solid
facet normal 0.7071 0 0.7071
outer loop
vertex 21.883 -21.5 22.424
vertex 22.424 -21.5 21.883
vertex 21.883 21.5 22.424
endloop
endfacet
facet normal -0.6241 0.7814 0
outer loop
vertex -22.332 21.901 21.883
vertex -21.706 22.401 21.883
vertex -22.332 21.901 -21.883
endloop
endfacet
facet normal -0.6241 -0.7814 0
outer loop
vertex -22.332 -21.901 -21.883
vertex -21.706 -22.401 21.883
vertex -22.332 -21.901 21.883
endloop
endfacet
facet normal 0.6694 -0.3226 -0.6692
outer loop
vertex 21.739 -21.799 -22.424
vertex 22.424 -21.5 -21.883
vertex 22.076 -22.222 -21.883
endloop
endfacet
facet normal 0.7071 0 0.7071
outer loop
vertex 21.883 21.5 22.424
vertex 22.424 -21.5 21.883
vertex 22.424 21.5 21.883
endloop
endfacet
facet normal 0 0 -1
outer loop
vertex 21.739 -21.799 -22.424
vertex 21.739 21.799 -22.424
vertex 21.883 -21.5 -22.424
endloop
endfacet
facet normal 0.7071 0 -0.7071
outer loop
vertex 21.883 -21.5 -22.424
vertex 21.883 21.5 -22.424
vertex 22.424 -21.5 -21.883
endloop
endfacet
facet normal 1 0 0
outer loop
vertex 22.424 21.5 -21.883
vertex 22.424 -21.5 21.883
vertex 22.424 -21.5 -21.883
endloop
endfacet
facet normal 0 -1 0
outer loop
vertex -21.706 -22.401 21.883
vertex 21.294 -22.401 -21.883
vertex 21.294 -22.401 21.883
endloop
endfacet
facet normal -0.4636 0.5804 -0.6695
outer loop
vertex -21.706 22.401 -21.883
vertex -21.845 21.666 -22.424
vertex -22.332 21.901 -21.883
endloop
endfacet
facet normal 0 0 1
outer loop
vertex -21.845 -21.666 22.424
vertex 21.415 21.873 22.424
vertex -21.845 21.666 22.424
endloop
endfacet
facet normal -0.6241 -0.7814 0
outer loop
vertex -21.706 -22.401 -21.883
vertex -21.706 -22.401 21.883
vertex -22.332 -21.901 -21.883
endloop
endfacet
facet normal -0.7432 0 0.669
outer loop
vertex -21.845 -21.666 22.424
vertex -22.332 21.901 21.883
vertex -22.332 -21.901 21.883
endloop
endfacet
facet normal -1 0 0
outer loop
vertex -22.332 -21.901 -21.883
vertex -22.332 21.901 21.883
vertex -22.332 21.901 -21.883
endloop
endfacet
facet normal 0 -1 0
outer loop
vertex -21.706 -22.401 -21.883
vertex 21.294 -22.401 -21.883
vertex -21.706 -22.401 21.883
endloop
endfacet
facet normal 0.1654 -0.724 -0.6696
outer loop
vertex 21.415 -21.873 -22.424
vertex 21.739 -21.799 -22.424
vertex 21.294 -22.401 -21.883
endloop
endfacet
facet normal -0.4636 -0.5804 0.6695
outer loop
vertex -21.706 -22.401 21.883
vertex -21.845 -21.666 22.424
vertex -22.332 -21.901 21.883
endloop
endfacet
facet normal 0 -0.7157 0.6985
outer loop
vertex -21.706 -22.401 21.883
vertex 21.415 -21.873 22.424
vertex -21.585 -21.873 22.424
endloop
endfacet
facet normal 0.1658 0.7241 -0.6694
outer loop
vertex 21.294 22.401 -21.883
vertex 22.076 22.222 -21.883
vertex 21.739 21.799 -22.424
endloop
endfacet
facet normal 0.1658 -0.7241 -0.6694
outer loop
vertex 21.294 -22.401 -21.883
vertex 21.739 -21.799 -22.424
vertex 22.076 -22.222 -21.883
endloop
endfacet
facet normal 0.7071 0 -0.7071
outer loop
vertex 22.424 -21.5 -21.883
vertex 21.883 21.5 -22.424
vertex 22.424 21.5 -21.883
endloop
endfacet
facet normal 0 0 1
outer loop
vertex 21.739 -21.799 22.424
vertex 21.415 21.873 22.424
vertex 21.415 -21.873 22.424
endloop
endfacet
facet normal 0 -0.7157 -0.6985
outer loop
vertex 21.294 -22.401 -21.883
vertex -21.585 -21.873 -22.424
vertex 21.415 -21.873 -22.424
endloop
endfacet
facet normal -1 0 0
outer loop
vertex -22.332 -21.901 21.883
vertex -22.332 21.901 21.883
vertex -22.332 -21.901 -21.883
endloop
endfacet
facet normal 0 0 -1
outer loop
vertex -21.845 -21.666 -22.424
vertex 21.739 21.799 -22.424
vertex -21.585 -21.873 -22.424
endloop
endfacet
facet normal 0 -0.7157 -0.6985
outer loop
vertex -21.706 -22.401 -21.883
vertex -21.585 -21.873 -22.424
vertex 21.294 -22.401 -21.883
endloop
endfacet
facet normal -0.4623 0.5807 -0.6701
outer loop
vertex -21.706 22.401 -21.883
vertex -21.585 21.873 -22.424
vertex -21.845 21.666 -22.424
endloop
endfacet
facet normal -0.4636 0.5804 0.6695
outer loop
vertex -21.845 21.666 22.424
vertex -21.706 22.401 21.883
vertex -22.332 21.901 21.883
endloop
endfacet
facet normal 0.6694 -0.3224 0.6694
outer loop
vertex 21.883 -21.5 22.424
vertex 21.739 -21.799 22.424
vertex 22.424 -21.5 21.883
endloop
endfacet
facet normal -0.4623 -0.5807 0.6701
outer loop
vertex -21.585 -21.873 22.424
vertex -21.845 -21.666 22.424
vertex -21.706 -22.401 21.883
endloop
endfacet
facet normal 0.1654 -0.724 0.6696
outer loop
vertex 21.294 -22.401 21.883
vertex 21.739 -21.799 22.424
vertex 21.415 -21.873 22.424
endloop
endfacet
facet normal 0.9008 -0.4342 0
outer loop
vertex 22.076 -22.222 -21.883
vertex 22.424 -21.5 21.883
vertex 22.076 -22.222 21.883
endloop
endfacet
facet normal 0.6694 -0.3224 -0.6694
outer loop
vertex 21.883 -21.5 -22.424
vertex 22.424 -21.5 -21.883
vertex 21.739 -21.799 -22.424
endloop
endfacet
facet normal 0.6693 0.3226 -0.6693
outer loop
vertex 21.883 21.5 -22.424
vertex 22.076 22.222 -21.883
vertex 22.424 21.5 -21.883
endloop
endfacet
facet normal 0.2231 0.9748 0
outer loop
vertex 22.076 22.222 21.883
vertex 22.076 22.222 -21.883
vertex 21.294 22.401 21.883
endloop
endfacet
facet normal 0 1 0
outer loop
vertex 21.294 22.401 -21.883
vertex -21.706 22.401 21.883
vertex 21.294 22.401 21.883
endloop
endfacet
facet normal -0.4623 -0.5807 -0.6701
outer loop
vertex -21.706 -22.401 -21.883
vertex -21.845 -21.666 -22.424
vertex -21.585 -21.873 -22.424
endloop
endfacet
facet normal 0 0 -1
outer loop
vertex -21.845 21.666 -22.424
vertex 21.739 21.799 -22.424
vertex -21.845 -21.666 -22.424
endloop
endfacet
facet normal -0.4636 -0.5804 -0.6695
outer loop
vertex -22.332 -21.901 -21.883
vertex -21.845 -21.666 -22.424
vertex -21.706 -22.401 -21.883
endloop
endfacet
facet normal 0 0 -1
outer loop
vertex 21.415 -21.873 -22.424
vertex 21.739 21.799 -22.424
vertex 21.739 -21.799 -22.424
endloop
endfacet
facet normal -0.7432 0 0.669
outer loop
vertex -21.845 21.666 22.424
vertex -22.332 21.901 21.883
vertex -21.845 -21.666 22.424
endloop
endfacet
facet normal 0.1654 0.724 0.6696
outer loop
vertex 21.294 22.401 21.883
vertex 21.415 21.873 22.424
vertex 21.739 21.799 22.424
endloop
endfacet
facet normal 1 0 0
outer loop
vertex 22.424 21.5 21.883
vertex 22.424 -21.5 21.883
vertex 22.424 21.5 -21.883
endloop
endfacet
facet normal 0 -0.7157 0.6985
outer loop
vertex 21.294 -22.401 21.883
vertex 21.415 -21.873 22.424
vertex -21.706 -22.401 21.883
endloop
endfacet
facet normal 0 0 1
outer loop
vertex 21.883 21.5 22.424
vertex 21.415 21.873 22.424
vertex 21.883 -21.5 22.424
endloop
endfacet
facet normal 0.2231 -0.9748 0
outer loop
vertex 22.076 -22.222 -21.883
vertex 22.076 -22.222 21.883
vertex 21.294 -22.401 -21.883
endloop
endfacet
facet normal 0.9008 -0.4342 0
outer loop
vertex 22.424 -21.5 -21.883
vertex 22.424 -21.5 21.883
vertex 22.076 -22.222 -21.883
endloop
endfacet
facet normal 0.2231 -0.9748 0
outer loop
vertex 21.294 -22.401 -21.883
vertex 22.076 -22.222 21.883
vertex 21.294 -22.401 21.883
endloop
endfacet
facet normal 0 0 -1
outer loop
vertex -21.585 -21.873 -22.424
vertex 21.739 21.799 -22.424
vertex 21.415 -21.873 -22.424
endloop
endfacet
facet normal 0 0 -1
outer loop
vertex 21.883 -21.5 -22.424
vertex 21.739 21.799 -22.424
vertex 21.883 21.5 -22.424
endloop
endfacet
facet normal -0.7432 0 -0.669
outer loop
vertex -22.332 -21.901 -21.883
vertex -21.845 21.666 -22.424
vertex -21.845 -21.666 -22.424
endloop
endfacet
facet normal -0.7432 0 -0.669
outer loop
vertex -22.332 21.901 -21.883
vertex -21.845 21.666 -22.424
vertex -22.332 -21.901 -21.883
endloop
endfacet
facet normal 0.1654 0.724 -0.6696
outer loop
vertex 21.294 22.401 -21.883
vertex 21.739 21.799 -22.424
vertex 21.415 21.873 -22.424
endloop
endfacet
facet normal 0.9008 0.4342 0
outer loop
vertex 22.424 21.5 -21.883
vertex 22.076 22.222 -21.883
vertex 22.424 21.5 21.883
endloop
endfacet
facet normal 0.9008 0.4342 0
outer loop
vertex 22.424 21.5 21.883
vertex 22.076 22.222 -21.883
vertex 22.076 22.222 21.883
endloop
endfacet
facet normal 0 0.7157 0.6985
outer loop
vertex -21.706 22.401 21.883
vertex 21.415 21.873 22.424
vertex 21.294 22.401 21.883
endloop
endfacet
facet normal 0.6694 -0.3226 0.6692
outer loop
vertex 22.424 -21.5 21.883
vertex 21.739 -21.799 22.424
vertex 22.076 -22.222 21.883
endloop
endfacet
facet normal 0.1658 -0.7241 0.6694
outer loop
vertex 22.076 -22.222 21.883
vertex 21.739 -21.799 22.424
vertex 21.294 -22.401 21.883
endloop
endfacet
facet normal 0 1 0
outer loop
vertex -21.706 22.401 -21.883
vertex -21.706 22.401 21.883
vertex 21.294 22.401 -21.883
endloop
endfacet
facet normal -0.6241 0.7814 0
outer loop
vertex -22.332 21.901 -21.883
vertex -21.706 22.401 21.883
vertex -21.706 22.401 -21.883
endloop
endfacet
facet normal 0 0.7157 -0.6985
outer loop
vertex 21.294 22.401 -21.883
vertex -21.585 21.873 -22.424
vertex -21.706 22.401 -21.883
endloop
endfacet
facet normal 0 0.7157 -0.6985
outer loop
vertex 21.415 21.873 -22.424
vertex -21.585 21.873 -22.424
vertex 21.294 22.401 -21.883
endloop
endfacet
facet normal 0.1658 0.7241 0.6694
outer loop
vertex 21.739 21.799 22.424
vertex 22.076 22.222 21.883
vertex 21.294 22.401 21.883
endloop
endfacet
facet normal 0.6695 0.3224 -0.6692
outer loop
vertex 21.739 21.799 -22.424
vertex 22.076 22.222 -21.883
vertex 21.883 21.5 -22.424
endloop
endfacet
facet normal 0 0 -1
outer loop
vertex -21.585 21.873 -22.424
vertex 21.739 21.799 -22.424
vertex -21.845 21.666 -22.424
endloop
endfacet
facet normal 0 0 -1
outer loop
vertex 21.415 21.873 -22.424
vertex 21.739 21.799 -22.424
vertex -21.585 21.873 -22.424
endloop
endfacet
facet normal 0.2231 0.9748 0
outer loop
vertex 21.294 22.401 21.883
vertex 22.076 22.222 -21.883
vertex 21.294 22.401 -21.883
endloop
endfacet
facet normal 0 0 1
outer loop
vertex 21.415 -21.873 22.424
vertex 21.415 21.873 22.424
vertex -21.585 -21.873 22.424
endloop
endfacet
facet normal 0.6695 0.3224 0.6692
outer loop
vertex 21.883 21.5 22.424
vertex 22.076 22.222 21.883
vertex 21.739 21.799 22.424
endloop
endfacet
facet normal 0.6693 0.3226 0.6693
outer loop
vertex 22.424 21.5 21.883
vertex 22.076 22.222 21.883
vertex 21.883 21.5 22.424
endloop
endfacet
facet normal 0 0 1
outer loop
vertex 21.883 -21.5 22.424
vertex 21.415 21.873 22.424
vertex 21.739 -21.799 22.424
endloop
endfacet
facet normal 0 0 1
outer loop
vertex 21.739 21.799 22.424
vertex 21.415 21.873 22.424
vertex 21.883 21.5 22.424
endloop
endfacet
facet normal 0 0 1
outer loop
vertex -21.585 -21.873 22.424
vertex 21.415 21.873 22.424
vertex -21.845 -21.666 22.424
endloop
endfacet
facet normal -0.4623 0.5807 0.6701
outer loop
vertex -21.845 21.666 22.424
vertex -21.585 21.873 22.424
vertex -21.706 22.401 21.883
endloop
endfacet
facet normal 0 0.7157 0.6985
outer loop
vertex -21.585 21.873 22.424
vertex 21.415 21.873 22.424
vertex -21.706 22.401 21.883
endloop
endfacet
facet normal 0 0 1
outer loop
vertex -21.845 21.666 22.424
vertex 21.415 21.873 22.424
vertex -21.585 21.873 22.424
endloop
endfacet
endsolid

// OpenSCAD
// file: ../YAPP_Box/library/roundedCubes.scad
// More information on original version: https://danielupshaw.com/openscad-rounded-corners/
//
// Changed by GGS67 to remove some limitations:
//
//  1. Allow radius>length for rounded corners in one axis only (problem reported on 
//     original page in 2015)
//  2. Remove limitation where for apply_to=(x|y|z)max or (x|y|z)min the dimension 
//     of the corresponding perpendicular axis had to be at least 3 times the radius 
//     because of fixed cylinder height. Now cylinder height is always computed not
//     to interferr with opposite corner
//
//--- copy this include to your scad script
// include <./library/roundedCubes.scad>
//
// Set to 0.01 for higher definition curves (renders slower)
$fs = 1.0; //0.25;

module roundedCube(size = [1, 1, 1], center = false, radius = 0.5, apply_to = "all") {
	// If single value, convert to [x, y, z] vector
	size = (size[0] == undef) ? [size, size, size] : size;

    //echo(str("roundedcube([",size[0],size[1],size[2],"], radius=", radius, ", apply_to=",apply_to));
	translate_min = 0;
	translate_xmax = size[0];
	translate_ymax = size[1];
	translate_zmax = size[2];

	diameter = radius * 2;

    function adj2(i,dt,df) = (i==0)?dt:df;
    function adj(i,d) = adj2(i,d,-d);
    function adjR(i) = adj(i,radius);
    
	obj_translate = (center == false) ?
		[0, 0, 0] : [
			-(size[0] / 2),
			-(size[1] / 2),
			-(size[2] / 2)
		];

	translate(v = obj_translate) {
		hull() {
			for (xi = [0:1]) {
                translate_x = [translate_min, translate_xmax][xi];
				x_at = (xi == 0) ? "min" : "max";
				for (yi = [0:1]) {
                    translate_y = [translate_min, translate_ymax][yi];
   				    y_at = (yi == 0) ? "min" : "max";
					for (zi = [0:1]) {
                        translate_z = [translate_min, translate_zmax][zi];
    	     			z_at = (zi == 0) ? "min" : "max";

						if (
							(apply_to == "all") ||
							(apply_to == "xmin" && x_at == "min") || (apply_to == "xmax" && x_at == "max") ||
							(apply_to == "ymin" && y_at == "min") || (apply_to == "ymax" && y_at == "max") ||
							(apply_to == "zmin" && z_at == "min") || (apply_to == "zmax" && z_at == "max")
						) {
                // GGS: Separate translates to asccomodate changes allowing sizes < 3 x radius
    						translate(v = [translate_x+adjR(xi), translate_y+adjR(yi), translate_z+adjR(zi)])
							  sphere(r = radius);
						} else {
							rotate = 
								(apply_to == "xmin" || apply_to == "xmax" || apply_to == "x") ? [0, 90, 0] : (
								(apply_to == "ymin" || apply_to == "ymax" || apply_to == "y") ? [90, 90, 0] :
								[0, 0, 0]
							);
                //Compute cylinder height to make it work with cubbe sizes up to 3xradius which did not work
                // in original because cylinders would "eat" spheres
                            h1 =
								(apply_to == "xmin" || apply_to == "xmax" || apply_to == "x") ? size[0]-radius : (
								(apply_to == "ymin" || apply_to == "ymax" || apply_to == "y") ? size[1]-radius :
								size[2]-radius
							);
                            h2 =
								(apply_to == "xmin" || apply_to == "xmax" || apply_to == "x") ? size[0]/4 : (
								(apply_to == "ymin" || apply_to == "ymax" || apply_to == "y") ? size[1]/4 :
								size[2]/4
							);
                            h=(h1<h2 && h1>0)?h1:h2;
                            height=(h<radius)?h:radius;
                            //echo(str("h1=",h1));
                            //echo(str("h2=",h2));
                            //echo(str("h=",h));
                            //echo(str("height=",height));
                            trans =
								(apply_to == "xmin" || apply_to == "xmax" || apply_to == "x") ? [adj2(xi,0,-height),adjR(yi),adjR(zi)] : (
								(apply_to == "ymin" || apply_to == "ymax" || apply_to == "y") ? [adjR(xi),adj2(yi,0,-height),adjR(zi)] :
								[adjR(xi),adjR(yi),adj2(zi,0,-height)]
							);
                            //echo(trans);
                            translate(v = [translate_x+trans[0], translate_y+trans[1], translate_z+trans[2]])
		  					  rotate(a = rotate)
							    cylinder(h = height, r = radius, center = false);
						}
					}
				}
			}
		}
	}
}
// main file
/*
*   5x5 photo-cube
*/

include <../YAPP_Box/library/roundedCubes.scad>

roundedCube([45,45,45], true, radius = 1.0, apply_to = "all");
